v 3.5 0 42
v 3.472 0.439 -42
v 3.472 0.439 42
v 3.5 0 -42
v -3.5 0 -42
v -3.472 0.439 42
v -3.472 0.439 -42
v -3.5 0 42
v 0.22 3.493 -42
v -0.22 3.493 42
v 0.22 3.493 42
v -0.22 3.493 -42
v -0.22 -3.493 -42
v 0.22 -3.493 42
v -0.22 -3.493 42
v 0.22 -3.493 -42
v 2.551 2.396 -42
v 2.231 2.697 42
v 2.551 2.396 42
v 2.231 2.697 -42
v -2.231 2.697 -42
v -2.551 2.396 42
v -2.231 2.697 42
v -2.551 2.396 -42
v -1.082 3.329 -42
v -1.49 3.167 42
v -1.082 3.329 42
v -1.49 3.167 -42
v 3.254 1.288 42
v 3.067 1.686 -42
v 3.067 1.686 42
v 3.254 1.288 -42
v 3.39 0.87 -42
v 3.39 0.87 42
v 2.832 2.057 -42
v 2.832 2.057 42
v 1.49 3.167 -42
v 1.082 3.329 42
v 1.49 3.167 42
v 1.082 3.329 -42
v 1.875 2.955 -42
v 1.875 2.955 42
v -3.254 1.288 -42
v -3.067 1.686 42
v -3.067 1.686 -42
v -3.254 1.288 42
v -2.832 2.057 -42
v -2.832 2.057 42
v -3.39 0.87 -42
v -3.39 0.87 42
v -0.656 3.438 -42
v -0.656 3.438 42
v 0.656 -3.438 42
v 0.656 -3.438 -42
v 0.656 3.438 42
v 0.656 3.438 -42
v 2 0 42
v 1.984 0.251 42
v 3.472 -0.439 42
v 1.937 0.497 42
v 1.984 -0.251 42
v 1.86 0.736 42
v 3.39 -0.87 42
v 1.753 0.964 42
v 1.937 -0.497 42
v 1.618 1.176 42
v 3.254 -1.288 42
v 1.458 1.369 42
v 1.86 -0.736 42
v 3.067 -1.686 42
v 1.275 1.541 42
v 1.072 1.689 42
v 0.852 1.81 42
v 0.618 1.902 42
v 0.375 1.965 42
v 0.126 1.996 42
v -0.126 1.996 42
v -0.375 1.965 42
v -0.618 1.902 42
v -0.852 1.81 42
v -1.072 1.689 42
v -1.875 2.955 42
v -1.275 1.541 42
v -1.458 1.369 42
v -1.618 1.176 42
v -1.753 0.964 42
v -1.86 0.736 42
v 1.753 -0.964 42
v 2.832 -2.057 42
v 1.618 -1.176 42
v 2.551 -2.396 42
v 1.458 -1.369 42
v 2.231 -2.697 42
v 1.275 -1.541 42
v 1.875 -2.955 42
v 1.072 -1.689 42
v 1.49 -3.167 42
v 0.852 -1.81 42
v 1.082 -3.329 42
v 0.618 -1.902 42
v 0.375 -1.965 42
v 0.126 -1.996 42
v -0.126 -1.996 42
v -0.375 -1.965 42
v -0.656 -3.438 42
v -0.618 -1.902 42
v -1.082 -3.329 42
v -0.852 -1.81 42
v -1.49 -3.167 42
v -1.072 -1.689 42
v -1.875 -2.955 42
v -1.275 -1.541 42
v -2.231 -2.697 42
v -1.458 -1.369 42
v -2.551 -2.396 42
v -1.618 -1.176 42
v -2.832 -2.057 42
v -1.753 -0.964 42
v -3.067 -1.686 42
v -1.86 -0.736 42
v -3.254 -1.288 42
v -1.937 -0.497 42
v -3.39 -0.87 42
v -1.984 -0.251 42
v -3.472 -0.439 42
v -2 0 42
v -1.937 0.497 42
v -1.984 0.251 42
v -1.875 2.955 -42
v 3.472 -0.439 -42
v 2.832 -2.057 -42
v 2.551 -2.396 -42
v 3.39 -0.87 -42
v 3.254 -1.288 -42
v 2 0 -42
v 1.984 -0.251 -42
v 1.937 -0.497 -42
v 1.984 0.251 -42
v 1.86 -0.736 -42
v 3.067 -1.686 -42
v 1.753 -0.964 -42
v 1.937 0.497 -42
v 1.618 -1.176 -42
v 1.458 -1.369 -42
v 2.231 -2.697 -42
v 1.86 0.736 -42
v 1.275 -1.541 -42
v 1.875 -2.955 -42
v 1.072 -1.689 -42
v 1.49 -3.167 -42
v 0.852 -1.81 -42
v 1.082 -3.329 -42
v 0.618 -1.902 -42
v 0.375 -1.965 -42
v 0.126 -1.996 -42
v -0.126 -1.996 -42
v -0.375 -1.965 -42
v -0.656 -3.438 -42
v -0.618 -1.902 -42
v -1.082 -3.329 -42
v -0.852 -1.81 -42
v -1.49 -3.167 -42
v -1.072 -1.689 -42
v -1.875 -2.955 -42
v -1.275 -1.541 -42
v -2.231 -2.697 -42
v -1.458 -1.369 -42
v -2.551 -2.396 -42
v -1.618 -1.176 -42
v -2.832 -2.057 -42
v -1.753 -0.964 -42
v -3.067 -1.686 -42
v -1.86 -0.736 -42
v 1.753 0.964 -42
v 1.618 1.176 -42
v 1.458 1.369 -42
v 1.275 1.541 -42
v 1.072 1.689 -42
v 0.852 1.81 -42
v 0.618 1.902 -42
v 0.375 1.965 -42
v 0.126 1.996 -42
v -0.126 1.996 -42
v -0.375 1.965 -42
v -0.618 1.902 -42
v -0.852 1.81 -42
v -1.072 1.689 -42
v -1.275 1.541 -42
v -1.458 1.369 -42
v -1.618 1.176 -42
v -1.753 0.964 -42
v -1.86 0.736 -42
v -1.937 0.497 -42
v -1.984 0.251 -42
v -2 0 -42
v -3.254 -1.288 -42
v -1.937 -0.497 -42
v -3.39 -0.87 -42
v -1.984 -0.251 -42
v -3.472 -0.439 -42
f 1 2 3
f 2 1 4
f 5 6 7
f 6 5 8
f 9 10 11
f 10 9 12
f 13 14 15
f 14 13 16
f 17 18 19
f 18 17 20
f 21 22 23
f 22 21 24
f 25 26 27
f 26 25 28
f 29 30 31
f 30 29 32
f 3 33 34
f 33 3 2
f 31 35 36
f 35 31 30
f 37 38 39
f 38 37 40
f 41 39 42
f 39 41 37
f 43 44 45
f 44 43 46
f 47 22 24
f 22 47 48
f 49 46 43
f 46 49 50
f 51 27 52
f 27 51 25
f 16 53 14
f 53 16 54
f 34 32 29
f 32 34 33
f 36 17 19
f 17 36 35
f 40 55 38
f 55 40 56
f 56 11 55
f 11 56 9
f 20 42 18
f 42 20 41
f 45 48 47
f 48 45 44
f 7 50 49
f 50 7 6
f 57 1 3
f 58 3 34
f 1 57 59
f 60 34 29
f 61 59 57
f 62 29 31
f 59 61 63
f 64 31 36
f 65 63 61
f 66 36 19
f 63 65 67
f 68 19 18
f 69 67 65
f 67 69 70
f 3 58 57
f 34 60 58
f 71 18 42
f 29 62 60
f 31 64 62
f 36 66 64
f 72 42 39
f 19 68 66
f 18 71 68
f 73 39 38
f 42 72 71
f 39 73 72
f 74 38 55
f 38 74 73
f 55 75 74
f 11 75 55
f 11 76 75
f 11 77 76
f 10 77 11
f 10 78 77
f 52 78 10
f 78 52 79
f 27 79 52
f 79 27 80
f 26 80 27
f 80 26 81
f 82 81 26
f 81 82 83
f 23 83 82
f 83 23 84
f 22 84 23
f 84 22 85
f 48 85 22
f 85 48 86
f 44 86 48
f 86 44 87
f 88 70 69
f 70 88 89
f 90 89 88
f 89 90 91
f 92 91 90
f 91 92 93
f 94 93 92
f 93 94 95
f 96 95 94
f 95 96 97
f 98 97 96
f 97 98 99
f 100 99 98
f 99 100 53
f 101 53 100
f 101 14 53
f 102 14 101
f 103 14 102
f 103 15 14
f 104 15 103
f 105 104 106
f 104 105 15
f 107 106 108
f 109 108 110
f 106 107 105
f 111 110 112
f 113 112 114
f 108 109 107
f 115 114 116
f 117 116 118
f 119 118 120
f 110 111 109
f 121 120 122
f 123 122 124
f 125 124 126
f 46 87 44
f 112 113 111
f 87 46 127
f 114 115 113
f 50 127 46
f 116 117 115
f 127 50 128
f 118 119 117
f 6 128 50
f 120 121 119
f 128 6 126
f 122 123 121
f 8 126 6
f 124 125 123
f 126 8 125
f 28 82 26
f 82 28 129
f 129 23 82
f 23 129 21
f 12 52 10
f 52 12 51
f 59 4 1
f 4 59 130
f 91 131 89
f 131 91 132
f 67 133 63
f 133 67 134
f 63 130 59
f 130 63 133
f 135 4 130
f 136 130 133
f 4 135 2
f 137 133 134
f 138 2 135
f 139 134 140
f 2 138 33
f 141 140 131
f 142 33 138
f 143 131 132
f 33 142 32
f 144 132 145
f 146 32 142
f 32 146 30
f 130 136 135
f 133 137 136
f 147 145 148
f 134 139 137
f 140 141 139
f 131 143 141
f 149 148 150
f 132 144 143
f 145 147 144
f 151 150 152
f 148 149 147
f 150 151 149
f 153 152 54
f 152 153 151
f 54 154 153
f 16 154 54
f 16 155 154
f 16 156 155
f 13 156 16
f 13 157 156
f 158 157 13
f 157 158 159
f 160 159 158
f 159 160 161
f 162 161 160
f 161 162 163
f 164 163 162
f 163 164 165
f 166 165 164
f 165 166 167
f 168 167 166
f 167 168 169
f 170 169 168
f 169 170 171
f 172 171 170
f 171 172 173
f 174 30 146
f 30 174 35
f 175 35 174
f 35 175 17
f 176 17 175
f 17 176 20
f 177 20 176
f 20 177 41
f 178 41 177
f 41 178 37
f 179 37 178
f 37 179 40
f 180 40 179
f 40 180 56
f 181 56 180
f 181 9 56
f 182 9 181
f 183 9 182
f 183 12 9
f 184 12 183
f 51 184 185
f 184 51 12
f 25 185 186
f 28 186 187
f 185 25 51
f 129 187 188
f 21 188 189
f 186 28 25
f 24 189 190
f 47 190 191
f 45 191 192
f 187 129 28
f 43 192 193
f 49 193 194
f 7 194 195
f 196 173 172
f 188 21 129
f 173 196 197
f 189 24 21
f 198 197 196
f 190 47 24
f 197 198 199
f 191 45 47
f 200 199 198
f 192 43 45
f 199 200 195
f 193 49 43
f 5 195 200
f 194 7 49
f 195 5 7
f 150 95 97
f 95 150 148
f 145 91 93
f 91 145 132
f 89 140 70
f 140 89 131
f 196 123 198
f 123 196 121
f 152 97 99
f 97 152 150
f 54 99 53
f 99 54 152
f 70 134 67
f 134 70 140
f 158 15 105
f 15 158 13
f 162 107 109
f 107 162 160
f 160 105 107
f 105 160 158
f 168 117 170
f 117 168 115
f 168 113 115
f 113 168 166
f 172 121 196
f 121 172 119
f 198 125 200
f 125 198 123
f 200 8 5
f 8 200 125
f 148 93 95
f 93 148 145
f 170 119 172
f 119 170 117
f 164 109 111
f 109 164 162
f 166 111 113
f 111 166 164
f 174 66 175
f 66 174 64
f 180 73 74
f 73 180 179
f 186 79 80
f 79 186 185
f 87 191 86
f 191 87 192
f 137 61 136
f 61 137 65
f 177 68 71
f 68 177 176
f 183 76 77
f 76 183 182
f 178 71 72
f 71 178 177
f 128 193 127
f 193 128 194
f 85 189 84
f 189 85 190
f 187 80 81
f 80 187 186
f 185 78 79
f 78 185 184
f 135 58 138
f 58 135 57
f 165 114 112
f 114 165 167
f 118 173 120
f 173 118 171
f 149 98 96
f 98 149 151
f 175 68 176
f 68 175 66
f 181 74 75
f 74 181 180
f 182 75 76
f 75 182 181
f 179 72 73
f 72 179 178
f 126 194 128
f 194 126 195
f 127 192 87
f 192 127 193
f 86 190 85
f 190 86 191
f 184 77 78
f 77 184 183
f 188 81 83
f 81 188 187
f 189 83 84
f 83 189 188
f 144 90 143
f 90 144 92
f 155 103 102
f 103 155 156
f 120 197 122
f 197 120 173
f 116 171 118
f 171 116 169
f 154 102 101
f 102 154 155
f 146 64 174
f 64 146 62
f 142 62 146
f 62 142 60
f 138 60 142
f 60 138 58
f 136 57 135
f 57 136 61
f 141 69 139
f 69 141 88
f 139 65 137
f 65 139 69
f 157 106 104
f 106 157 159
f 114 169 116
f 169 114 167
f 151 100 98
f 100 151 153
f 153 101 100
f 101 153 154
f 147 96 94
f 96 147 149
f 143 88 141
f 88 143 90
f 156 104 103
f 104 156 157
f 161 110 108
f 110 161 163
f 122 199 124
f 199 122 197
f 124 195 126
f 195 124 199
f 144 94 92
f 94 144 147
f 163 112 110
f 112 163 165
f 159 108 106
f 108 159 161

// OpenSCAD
$fn = 50;


difference() {
	union() {
		translate(v = [0, 0, -42.0000000000]) {
			cylinder(h = 84, r = 3.5000000000);
		}
	}
	union() {
		translate(v = [0, 0, -100.0000000000]) {
			cylinder(h = 200, r = 2);
		}
	}
}
